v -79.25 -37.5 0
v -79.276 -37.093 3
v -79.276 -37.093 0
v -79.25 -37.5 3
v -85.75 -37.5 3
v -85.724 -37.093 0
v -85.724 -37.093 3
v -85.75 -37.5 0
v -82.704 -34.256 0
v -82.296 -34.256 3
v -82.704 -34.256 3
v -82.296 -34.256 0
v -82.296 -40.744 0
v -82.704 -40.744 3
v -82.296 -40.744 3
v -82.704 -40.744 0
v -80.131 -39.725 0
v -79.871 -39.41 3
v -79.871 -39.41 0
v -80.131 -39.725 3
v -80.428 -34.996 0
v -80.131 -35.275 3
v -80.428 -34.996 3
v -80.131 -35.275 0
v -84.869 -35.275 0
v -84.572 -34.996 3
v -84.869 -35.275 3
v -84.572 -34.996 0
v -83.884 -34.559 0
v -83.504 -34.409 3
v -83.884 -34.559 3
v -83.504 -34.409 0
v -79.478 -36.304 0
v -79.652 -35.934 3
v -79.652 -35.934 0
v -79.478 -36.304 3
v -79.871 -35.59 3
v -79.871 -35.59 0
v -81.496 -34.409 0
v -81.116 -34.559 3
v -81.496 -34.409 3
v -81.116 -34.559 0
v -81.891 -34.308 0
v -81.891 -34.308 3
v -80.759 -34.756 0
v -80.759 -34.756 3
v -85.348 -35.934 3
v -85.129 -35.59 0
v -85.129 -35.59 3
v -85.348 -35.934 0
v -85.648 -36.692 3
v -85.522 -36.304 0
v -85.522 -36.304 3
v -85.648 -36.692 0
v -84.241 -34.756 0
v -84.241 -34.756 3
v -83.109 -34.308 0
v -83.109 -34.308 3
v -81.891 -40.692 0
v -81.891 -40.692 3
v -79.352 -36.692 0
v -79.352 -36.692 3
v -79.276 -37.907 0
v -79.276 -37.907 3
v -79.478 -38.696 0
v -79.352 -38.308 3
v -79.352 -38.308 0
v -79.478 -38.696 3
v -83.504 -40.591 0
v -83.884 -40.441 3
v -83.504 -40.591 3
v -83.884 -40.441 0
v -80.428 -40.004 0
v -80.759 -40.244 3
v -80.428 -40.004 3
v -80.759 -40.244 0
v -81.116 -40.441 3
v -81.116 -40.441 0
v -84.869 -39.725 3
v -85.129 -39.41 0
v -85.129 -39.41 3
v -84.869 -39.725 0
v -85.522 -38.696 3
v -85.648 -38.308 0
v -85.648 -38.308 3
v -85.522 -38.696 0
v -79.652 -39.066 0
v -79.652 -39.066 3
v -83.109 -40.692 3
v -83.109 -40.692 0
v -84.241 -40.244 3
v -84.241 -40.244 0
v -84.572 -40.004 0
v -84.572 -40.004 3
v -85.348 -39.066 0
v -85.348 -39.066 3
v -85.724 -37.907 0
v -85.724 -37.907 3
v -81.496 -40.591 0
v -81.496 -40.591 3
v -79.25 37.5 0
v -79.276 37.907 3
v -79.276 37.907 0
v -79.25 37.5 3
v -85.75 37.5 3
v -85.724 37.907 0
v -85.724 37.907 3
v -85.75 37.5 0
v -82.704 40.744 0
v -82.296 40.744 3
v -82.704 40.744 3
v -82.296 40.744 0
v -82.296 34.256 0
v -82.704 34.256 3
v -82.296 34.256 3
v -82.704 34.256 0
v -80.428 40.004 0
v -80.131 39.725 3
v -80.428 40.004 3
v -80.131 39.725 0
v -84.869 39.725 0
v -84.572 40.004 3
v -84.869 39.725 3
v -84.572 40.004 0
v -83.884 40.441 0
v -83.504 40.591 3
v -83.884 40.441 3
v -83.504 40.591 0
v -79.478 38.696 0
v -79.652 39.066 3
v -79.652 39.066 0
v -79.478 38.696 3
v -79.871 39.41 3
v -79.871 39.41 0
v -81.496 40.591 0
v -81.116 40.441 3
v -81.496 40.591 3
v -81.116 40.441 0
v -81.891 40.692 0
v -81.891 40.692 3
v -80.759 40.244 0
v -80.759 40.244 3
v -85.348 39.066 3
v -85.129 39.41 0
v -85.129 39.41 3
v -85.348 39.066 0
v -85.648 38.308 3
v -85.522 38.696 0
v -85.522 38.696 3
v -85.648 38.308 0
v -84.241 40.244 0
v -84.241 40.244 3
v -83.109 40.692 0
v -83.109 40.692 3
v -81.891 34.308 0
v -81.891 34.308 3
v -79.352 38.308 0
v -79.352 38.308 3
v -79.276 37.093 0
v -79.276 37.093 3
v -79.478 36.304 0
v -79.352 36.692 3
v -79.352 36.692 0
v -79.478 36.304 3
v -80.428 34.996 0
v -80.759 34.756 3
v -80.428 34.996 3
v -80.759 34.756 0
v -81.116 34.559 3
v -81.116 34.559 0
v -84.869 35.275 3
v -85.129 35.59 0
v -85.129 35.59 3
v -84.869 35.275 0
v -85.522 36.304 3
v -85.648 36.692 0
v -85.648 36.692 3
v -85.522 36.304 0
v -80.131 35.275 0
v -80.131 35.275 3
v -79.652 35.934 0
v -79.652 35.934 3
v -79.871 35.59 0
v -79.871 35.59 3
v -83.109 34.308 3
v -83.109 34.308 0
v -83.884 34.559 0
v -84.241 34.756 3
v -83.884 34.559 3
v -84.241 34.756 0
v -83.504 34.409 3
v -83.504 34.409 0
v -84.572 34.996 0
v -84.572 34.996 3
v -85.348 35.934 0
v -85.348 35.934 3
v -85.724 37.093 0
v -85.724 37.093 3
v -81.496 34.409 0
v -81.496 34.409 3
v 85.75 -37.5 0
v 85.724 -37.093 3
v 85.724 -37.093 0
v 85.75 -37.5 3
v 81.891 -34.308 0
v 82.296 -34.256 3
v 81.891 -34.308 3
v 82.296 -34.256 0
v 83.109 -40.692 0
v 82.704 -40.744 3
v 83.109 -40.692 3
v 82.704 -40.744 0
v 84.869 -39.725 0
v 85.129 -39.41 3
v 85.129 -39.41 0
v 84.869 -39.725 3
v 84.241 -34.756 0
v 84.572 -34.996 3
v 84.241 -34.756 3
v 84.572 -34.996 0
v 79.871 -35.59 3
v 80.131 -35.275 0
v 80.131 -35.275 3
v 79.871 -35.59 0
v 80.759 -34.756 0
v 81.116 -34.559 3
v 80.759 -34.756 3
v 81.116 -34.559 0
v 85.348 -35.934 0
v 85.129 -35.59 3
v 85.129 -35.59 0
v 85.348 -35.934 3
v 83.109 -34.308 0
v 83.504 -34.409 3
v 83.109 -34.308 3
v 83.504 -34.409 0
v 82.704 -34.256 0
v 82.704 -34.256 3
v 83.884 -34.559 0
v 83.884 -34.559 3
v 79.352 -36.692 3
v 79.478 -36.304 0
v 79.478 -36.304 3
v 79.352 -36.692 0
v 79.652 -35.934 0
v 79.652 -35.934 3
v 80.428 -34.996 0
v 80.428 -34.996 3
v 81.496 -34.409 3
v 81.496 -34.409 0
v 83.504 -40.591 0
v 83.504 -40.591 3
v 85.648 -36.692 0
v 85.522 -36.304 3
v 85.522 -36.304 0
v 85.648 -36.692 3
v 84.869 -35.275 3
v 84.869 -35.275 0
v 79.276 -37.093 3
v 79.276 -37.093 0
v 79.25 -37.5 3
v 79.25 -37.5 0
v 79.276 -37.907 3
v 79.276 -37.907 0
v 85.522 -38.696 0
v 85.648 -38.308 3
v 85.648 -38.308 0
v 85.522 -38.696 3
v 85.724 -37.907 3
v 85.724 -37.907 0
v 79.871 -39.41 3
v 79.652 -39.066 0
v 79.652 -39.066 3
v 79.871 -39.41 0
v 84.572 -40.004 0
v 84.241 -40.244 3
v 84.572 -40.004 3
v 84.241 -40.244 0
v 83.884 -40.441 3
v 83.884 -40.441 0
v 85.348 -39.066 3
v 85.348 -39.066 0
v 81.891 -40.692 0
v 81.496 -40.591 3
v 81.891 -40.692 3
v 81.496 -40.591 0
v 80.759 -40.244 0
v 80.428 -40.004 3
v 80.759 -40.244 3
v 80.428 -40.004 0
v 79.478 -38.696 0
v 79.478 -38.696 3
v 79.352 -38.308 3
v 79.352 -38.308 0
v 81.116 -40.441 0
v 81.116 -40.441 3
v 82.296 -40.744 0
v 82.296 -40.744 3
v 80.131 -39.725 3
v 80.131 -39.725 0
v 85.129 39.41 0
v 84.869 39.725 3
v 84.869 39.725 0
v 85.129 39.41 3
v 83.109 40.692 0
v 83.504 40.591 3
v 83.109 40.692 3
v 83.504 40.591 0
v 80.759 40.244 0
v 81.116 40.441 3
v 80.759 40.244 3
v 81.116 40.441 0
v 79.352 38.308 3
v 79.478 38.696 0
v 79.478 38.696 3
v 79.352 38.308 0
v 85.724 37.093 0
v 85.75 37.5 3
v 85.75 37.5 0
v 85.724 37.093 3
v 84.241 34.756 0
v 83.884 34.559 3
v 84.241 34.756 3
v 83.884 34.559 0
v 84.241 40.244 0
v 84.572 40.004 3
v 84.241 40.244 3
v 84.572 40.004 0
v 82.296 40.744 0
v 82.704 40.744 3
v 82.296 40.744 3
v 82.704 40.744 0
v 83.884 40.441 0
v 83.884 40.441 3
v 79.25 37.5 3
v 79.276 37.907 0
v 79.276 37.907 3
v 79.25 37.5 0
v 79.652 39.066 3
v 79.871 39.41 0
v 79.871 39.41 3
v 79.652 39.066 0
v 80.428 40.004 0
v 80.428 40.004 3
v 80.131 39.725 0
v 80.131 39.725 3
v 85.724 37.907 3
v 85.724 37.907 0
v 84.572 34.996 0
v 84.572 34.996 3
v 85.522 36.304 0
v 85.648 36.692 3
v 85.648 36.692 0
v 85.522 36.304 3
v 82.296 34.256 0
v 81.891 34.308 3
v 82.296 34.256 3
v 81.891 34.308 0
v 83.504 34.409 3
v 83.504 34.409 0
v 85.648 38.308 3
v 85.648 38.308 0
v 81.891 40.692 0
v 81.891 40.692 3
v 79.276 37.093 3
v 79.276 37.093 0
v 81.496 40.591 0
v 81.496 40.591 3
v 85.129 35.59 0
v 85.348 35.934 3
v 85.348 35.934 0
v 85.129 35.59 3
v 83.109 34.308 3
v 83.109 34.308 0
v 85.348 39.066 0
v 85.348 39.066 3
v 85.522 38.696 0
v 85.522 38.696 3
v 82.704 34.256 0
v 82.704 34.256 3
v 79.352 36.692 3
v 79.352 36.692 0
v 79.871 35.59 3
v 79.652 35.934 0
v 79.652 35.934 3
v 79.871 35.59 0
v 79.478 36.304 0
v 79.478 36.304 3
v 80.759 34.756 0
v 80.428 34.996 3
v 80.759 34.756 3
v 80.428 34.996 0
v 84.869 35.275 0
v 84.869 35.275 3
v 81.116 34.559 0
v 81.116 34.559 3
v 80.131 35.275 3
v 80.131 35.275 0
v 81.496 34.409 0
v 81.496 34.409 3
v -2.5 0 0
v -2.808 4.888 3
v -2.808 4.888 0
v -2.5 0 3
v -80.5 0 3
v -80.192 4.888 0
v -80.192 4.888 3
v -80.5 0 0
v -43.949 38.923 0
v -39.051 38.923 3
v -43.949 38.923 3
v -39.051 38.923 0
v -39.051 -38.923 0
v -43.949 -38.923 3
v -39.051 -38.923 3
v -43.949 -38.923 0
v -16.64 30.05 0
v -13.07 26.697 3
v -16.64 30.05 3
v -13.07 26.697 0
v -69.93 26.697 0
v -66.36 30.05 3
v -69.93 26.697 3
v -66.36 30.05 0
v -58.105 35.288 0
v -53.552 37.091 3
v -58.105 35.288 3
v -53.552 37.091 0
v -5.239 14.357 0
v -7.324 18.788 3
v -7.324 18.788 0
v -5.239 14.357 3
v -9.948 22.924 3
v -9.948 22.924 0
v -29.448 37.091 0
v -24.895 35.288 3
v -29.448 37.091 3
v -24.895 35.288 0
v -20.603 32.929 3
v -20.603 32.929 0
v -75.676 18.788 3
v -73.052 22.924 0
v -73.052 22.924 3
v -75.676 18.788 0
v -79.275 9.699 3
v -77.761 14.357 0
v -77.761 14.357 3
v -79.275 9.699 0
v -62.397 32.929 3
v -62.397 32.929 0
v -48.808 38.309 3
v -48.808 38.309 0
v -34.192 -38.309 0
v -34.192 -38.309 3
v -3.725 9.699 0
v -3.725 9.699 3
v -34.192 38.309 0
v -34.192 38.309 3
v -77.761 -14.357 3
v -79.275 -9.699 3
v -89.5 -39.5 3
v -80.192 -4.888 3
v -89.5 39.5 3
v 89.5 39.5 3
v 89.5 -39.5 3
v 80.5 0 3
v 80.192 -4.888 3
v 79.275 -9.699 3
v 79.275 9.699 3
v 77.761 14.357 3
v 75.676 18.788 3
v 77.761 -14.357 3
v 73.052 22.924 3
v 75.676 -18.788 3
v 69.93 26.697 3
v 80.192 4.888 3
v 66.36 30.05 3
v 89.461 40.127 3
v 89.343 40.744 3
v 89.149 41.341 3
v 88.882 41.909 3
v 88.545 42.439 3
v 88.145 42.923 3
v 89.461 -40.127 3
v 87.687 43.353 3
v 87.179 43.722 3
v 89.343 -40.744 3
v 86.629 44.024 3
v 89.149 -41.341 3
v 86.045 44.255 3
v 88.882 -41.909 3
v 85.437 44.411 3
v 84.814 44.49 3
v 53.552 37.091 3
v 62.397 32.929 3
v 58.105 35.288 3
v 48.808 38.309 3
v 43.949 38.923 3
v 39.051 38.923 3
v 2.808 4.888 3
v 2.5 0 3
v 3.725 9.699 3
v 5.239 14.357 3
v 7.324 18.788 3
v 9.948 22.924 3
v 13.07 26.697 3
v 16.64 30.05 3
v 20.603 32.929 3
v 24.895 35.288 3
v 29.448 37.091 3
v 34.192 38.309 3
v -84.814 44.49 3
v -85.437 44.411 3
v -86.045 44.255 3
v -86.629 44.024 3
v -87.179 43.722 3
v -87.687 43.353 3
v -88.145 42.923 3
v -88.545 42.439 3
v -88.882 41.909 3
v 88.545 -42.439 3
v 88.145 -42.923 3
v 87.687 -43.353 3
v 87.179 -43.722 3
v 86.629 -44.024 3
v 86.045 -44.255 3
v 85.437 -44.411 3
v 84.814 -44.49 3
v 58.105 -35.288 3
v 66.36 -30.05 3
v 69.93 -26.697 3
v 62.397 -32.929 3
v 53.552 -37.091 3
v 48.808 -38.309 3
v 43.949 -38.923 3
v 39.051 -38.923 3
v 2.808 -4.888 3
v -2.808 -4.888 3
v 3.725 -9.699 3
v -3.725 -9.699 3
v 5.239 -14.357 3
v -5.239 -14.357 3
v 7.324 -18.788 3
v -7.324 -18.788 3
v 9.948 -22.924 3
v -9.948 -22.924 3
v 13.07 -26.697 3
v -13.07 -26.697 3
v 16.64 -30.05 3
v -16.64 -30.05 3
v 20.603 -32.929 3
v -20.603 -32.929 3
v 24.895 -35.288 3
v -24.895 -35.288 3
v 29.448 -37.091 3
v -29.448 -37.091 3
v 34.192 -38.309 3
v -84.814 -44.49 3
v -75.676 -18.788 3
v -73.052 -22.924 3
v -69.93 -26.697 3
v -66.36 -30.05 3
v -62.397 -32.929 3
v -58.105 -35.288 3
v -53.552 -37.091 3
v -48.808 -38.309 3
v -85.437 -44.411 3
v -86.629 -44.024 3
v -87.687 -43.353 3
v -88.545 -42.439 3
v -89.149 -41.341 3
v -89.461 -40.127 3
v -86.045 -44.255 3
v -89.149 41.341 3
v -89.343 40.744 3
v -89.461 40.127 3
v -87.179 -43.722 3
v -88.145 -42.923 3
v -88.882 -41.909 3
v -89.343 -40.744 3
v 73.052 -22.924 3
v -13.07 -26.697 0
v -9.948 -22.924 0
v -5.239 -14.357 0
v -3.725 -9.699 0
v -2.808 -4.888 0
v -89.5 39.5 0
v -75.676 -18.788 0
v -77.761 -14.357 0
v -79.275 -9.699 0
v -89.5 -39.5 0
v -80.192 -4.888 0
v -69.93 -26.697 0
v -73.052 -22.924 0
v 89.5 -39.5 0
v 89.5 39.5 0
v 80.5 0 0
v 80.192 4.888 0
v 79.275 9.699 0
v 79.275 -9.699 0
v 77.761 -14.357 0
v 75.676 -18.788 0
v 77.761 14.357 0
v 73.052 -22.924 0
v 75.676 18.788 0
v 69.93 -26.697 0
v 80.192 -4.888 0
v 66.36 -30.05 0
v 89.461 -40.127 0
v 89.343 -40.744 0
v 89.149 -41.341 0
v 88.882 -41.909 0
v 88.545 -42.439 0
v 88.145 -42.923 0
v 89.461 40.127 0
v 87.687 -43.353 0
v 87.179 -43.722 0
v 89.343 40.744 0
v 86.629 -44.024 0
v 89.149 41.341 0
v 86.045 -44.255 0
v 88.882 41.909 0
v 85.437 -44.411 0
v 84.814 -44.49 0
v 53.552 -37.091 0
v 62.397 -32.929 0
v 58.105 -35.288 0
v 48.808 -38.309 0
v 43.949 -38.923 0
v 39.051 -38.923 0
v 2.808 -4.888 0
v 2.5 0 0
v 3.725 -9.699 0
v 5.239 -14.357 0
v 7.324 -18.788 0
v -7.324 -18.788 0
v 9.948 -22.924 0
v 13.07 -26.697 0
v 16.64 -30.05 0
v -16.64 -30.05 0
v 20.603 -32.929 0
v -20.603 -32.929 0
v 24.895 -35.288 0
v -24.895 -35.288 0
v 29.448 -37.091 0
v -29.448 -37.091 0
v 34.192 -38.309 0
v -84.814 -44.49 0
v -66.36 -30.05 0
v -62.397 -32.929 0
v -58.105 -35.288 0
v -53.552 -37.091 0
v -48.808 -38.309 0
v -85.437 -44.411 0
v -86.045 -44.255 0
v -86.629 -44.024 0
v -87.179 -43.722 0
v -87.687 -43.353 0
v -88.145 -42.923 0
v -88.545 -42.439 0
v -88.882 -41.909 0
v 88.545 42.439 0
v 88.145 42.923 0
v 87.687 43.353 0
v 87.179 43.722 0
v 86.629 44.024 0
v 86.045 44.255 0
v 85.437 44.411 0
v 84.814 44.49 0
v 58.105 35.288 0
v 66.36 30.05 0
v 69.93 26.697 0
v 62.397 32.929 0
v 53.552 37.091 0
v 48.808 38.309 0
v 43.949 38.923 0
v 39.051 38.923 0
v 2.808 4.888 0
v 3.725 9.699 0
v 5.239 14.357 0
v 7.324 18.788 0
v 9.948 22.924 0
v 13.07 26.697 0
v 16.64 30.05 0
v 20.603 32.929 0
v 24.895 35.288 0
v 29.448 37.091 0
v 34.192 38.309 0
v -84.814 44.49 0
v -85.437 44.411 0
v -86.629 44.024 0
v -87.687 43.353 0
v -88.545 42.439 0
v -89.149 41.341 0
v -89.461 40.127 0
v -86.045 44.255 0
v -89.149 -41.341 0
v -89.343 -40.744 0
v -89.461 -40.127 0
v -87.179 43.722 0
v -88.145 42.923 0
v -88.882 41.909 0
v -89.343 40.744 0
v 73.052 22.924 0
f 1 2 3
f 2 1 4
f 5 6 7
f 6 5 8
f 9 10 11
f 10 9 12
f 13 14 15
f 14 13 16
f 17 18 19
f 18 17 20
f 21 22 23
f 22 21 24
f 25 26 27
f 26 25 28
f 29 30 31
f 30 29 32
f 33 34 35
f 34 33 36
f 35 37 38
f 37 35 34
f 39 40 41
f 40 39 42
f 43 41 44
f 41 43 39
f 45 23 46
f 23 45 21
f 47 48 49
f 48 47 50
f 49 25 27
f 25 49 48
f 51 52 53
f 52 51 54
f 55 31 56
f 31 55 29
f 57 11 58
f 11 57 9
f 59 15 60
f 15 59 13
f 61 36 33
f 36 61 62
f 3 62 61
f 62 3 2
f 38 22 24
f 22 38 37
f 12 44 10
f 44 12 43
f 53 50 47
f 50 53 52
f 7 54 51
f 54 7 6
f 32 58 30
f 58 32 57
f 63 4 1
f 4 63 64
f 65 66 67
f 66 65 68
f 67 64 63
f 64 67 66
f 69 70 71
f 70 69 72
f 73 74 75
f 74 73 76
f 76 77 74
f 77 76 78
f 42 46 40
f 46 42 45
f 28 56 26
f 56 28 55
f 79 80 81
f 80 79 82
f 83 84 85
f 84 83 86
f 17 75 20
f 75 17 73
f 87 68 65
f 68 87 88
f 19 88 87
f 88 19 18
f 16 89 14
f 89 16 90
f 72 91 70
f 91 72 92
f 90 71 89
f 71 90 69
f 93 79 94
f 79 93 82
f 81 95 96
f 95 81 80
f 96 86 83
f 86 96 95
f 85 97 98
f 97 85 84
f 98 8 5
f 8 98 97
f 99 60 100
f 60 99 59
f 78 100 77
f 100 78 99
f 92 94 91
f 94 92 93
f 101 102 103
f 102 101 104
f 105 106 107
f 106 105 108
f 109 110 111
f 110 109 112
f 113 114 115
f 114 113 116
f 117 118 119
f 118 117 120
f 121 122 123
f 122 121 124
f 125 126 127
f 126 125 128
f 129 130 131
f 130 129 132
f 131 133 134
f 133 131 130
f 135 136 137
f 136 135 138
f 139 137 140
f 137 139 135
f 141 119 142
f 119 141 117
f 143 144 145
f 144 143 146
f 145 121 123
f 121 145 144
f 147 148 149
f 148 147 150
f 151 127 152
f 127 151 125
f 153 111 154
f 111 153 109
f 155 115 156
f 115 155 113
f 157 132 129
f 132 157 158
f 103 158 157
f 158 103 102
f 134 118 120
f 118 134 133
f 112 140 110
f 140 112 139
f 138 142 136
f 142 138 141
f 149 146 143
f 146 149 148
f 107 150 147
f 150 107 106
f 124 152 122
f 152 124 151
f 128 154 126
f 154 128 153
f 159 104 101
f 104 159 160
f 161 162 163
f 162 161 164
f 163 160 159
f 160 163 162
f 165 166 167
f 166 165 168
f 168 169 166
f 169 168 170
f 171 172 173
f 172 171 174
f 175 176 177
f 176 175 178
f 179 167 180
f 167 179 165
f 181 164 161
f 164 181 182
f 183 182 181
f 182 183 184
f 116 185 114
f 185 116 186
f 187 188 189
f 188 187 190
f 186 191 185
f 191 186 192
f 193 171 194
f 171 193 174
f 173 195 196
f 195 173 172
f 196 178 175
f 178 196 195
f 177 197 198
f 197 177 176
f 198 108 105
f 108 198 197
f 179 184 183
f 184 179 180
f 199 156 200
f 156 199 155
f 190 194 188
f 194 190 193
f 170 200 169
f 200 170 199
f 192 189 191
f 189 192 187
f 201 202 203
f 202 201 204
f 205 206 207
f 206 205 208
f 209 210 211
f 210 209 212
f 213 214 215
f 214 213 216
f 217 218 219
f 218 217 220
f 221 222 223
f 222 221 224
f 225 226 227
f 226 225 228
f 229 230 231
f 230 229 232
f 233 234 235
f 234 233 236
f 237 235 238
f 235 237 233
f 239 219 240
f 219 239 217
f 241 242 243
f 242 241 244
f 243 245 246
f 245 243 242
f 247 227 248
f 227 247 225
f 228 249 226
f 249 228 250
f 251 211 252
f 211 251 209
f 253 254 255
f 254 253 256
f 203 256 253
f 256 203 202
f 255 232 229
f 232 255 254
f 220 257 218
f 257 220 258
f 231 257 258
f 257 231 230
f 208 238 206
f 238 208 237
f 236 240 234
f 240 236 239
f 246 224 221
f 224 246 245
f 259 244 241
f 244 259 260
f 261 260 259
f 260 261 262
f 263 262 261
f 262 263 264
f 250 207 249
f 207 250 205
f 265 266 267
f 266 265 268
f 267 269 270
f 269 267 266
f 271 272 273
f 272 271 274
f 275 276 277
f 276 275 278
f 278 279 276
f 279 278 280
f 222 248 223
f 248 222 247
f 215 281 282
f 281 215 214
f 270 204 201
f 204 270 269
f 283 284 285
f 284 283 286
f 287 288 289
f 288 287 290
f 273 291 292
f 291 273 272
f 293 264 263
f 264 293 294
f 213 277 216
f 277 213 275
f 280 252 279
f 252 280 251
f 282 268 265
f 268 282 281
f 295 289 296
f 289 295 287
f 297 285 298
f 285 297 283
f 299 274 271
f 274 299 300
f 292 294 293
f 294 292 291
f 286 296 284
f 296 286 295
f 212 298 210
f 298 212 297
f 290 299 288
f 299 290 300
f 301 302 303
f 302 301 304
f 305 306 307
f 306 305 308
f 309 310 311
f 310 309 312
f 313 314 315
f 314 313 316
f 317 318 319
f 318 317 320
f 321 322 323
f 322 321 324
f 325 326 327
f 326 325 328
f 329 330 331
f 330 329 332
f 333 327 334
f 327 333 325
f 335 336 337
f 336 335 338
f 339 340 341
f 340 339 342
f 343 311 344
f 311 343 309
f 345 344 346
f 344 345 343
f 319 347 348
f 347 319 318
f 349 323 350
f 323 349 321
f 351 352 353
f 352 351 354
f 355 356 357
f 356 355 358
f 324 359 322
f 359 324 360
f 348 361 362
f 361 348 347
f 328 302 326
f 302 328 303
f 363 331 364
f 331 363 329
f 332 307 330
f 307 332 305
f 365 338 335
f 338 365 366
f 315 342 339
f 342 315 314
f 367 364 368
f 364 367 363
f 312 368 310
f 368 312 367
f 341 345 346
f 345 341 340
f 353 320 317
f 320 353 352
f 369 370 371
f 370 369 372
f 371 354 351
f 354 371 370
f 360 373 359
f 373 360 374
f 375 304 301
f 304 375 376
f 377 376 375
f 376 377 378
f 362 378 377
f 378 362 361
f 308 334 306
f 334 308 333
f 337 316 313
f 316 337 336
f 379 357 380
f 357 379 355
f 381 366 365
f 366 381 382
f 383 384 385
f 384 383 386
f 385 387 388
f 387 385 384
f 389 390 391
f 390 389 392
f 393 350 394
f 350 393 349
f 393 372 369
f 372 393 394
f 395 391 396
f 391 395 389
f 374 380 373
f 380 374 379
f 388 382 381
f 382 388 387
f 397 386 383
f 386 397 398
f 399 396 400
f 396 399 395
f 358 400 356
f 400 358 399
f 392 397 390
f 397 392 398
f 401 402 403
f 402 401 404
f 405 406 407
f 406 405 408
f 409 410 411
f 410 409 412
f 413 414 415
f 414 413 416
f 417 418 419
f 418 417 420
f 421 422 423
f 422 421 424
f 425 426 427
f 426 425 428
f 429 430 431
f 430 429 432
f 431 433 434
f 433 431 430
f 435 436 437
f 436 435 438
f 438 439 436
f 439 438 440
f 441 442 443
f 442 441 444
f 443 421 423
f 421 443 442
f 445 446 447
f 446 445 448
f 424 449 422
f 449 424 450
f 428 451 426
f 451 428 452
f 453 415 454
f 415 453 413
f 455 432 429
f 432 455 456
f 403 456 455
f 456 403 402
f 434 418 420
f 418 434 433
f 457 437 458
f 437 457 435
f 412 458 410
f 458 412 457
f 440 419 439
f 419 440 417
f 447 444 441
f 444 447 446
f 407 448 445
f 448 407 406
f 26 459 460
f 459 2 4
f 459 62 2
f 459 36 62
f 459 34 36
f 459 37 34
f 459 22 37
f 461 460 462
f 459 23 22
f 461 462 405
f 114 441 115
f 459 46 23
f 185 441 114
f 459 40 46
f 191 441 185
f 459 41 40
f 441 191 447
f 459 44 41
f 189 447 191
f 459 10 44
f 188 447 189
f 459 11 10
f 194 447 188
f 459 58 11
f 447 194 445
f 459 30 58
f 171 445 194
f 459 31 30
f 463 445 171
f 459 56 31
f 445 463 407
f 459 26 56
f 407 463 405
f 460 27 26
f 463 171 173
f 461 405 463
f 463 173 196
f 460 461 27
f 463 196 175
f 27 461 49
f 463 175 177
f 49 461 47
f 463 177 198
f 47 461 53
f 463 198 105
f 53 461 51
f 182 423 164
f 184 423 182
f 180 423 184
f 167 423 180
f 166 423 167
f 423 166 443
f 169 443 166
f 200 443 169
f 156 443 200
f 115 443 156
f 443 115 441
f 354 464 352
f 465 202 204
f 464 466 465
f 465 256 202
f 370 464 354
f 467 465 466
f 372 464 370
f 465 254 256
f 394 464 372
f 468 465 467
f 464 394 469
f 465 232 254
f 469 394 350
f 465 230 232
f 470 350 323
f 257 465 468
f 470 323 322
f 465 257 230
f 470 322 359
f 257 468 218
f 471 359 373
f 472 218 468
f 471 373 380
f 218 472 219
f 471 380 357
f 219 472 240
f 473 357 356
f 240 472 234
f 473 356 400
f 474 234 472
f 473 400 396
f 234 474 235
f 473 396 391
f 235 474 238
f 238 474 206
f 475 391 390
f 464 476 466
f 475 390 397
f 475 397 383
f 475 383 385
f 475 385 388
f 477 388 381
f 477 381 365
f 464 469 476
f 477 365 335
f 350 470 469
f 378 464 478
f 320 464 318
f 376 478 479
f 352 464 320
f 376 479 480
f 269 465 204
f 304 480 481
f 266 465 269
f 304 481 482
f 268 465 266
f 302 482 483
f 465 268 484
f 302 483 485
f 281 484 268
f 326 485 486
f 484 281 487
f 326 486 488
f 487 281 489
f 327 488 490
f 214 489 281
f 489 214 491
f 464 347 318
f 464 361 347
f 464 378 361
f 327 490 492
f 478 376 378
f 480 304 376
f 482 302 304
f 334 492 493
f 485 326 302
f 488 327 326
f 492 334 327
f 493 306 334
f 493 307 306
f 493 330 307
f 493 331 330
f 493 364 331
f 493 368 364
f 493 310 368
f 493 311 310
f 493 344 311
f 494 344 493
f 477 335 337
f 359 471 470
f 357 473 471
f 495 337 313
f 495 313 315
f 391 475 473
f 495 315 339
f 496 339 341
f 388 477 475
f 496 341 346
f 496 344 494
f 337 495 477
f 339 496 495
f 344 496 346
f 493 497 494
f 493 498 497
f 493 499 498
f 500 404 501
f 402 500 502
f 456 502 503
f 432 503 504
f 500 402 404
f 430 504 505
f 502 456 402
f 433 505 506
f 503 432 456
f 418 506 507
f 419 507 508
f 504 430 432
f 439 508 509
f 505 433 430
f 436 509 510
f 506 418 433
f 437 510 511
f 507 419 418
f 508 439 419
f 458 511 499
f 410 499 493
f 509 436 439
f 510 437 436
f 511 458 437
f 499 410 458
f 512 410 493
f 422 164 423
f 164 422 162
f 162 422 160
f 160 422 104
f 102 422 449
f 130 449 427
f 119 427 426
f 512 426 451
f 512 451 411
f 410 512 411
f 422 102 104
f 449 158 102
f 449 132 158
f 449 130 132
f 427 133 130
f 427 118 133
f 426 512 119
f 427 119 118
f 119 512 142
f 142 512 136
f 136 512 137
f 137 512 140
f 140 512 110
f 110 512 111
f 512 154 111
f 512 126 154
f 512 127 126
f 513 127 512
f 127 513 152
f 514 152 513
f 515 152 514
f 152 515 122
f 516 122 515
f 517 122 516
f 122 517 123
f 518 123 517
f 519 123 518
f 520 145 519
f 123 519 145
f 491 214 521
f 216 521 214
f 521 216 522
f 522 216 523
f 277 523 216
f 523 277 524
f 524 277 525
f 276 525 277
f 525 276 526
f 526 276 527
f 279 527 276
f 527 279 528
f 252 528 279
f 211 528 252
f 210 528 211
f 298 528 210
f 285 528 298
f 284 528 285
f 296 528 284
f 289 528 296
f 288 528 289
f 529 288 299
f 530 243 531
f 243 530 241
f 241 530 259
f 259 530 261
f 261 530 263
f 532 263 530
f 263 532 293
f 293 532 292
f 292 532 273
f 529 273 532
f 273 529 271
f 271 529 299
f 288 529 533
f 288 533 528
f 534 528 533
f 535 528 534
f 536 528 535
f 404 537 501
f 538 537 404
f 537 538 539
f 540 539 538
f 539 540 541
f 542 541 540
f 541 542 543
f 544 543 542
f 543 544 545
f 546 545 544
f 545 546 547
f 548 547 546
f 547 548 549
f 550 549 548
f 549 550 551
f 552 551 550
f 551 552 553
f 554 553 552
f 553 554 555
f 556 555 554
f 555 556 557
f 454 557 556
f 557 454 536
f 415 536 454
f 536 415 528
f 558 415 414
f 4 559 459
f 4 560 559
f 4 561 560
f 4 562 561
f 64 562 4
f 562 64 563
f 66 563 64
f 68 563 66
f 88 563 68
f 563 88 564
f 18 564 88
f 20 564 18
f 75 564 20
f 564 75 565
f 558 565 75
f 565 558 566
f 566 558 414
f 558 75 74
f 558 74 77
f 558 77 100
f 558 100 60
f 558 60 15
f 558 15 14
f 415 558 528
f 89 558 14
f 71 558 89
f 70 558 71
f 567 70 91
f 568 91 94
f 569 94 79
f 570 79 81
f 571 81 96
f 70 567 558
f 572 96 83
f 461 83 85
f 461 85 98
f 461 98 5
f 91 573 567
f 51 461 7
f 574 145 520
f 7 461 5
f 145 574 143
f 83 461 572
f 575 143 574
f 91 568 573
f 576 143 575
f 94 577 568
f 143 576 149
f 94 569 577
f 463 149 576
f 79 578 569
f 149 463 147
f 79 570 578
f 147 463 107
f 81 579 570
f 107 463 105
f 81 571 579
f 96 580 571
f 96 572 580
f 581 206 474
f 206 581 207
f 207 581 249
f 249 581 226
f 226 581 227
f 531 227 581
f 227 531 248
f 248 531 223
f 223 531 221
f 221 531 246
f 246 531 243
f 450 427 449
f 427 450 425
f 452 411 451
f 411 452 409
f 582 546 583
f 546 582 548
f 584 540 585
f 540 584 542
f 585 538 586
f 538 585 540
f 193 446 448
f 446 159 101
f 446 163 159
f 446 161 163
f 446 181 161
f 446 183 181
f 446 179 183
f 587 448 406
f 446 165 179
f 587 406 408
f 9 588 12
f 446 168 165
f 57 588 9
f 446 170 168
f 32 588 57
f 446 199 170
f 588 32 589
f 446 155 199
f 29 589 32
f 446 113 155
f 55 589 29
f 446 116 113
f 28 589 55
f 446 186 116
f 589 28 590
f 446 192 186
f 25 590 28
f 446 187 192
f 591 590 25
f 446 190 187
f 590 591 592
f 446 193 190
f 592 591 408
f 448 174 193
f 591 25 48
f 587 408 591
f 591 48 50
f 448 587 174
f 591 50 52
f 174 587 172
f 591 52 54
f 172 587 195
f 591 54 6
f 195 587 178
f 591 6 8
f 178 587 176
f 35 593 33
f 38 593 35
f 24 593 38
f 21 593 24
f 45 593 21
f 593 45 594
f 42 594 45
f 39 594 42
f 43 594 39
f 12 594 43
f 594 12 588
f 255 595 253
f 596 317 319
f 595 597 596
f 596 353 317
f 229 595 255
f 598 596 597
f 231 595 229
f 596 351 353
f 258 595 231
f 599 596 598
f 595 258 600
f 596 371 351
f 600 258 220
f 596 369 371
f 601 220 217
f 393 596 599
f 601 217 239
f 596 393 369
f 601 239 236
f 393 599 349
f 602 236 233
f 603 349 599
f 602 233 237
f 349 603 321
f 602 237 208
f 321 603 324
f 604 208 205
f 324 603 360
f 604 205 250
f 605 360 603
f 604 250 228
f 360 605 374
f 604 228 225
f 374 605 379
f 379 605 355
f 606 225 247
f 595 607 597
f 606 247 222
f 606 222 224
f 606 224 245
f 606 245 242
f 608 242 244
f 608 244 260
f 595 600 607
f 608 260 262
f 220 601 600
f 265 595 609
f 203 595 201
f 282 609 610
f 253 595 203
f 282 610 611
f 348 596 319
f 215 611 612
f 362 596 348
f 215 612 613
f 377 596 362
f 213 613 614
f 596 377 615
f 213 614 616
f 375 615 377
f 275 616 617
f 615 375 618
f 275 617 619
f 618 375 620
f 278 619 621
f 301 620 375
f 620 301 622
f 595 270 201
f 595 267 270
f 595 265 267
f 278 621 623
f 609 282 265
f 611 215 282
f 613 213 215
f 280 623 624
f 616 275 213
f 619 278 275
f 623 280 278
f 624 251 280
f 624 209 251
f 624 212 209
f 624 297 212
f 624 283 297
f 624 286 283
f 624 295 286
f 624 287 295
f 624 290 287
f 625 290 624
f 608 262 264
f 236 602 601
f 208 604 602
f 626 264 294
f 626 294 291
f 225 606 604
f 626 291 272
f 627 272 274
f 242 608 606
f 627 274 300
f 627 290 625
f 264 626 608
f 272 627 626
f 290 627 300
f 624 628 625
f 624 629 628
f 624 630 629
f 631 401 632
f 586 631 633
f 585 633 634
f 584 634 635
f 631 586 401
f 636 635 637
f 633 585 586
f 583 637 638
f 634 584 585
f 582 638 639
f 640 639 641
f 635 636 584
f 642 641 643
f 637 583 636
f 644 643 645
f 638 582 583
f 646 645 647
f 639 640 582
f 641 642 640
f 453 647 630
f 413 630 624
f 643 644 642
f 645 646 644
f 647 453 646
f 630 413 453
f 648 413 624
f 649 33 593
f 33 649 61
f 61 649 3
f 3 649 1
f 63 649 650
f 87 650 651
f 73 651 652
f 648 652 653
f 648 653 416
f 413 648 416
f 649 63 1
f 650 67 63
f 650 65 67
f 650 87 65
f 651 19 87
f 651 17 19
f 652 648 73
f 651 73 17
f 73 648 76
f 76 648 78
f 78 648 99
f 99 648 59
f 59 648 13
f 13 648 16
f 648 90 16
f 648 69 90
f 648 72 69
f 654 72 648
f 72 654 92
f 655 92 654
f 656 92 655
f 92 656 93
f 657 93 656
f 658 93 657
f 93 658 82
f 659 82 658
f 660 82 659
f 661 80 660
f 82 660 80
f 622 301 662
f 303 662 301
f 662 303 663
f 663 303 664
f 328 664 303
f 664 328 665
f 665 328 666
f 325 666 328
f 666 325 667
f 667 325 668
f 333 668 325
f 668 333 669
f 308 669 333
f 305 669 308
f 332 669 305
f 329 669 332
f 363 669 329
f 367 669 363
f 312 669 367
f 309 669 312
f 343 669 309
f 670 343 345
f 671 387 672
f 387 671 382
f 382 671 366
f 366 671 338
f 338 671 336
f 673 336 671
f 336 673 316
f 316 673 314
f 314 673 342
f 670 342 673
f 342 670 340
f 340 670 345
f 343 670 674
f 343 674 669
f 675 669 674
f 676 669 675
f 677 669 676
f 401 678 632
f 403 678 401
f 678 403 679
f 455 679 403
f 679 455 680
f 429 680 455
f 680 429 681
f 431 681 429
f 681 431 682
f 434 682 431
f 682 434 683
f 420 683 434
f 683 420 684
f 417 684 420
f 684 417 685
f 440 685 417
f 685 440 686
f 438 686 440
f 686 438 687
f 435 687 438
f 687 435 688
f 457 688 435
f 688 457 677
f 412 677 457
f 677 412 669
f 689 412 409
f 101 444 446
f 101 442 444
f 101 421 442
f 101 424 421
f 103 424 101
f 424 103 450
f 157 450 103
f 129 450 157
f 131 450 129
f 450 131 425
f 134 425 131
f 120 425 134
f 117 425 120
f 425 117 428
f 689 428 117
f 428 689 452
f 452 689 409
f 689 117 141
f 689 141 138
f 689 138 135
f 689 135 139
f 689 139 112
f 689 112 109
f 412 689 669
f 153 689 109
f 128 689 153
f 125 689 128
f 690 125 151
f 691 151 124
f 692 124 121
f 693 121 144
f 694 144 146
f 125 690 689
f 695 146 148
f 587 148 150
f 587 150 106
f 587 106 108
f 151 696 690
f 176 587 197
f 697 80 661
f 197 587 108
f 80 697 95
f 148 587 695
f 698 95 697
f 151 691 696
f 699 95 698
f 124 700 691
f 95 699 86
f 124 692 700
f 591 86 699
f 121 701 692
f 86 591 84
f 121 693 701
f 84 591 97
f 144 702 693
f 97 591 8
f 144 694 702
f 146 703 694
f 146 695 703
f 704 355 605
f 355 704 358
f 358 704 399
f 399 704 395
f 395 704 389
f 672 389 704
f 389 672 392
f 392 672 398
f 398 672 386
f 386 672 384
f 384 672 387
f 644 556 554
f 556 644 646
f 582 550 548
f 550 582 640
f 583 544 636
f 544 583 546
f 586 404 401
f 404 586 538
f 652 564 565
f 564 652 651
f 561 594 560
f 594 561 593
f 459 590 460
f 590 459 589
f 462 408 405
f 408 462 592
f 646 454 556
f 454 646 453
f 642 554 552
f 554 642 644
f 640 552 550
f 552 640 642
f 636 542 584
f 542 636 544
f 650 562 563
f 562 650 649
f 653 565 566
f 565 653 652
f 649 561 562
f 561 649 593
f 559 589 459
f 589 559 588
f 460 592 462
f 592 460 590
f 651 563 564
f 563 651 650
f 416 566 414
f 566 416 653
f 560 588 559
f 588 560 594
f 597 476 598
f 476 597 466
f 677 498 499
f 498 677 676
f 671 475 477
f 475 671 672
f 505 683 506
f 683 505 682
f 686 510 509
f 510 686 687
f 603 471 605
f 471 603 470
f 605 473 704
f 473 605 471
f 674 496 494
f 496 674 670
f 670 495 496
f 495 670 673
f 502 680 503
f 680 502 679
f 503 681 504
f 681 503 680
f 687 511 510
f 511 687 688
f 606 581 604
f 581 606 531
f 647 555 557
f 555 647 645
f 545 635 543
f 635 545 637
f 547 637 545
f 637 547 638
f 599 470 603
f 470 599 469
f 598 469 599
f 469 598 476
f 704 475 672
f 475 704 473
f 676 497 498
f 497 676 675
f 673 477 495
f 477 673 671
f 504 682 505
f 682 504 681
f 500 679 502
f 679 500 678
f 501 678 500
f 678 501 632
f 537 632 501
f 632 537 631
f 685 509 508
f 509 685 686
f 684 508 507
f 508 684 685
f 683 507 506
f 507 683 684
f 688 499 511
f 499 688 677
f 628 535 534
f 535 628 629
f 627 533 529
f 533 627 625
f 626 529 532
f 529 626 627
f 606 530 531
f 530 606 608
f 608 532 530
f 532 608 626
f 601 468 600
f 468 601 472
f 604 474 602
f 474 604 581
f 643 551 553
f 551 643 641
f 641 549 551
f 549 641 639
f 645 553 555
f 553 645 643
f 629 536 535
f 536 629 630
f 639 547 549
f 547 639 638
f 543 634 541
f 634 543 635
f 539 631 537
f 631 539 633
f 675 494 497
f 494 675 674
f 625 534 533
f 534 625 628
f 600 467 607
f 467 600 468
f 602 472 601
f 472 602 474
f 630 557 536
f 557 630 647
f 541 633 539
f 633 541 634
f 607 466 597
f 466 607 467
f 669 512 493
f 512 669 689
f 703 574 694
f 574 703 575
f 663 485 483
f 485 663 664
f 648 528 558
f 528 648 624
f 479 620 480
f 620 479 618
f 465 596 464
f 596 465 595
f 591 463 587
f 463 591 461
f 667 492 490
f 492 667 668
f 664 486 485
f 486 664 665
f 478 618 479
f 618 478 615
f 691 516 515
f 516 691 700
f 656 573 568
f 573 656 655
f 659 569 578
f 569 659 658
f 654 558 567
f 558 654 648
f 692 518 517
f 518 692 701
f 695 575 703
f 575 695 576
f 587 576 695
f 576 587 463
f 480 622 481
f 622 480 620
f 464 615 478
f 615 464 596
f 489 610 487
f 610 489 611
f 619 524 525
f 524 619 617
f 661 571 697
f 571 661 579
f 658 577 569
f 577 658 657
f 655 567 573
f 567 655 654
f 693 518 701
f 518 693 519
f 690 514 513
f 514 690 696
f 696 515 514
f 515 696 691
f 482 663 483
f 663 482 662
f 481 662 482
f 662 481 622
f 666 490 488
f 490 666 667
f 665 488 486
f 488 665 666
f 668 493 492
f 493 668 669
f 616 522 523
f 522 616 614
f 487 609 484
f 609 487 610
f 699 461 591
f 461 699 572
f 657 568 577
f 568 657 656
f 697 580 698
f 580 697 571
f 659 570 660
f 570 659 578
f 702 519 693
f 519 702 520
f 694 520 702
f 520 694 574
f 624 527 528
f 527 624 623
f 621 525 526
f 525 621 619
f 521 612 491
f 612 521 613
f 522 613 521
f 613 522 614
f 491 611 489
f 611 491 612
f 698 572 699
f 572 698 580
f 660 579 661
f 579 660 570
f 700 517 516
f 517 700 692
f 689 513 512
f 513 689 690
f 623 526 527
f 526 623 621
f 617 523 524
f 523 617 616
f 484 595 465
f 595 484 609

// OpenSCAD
$fn = 50;


difference() {
	union() {
		hull() {
			translate(v = [-84.5000000000, 39.5000000000, 0]) {
				cylinder(h = 3, r = 5);
			}
			translate(v = [84.5000000000, 39.5000000000, 0]) {
				cylinder(h = 3, r = 5);
			}
			translate(v = [-84.5000000000, -39.5000000000, 0]) {
				cylinder(h = 3, r = 5);
			}
			translate(v = [84.5000000000, -39.5000000000, 0]) {
				cylinder(h = 3, r = 5);
			}
		}
	}
	union() {
		#translate(v = [-82.5000000000, -37.5000000000, -100.0000000000]) {
			cylinder(h = 200, r = 3.2500000000);
		}
		#translate(v = [-82.5000000000, 37.5000000000, -100.0000000000]) {
			cylinder(h = 200, r = 3.2500000000);
		}
		#translate(v = [82.5000000000, -37.5000000000, -100.0000000000]) {
			cylinder(h = 200, r = 3.2500000000);
		}
		#translate(v = [82.5000000000, 37.5000000000, -100.0000000000]) {
			cylinder(h = 200, r = 3.2500000000);
		}
		#translate(v = [-41.5000000000, 0, 0]) {
			cylinder(h = 3, r = 39.0000000000);
		}
		#translate(v = [41.5000000000, 0, 0]) {
			cylinder(h = 3, r = 39.0000000000);
		}
	}
}
